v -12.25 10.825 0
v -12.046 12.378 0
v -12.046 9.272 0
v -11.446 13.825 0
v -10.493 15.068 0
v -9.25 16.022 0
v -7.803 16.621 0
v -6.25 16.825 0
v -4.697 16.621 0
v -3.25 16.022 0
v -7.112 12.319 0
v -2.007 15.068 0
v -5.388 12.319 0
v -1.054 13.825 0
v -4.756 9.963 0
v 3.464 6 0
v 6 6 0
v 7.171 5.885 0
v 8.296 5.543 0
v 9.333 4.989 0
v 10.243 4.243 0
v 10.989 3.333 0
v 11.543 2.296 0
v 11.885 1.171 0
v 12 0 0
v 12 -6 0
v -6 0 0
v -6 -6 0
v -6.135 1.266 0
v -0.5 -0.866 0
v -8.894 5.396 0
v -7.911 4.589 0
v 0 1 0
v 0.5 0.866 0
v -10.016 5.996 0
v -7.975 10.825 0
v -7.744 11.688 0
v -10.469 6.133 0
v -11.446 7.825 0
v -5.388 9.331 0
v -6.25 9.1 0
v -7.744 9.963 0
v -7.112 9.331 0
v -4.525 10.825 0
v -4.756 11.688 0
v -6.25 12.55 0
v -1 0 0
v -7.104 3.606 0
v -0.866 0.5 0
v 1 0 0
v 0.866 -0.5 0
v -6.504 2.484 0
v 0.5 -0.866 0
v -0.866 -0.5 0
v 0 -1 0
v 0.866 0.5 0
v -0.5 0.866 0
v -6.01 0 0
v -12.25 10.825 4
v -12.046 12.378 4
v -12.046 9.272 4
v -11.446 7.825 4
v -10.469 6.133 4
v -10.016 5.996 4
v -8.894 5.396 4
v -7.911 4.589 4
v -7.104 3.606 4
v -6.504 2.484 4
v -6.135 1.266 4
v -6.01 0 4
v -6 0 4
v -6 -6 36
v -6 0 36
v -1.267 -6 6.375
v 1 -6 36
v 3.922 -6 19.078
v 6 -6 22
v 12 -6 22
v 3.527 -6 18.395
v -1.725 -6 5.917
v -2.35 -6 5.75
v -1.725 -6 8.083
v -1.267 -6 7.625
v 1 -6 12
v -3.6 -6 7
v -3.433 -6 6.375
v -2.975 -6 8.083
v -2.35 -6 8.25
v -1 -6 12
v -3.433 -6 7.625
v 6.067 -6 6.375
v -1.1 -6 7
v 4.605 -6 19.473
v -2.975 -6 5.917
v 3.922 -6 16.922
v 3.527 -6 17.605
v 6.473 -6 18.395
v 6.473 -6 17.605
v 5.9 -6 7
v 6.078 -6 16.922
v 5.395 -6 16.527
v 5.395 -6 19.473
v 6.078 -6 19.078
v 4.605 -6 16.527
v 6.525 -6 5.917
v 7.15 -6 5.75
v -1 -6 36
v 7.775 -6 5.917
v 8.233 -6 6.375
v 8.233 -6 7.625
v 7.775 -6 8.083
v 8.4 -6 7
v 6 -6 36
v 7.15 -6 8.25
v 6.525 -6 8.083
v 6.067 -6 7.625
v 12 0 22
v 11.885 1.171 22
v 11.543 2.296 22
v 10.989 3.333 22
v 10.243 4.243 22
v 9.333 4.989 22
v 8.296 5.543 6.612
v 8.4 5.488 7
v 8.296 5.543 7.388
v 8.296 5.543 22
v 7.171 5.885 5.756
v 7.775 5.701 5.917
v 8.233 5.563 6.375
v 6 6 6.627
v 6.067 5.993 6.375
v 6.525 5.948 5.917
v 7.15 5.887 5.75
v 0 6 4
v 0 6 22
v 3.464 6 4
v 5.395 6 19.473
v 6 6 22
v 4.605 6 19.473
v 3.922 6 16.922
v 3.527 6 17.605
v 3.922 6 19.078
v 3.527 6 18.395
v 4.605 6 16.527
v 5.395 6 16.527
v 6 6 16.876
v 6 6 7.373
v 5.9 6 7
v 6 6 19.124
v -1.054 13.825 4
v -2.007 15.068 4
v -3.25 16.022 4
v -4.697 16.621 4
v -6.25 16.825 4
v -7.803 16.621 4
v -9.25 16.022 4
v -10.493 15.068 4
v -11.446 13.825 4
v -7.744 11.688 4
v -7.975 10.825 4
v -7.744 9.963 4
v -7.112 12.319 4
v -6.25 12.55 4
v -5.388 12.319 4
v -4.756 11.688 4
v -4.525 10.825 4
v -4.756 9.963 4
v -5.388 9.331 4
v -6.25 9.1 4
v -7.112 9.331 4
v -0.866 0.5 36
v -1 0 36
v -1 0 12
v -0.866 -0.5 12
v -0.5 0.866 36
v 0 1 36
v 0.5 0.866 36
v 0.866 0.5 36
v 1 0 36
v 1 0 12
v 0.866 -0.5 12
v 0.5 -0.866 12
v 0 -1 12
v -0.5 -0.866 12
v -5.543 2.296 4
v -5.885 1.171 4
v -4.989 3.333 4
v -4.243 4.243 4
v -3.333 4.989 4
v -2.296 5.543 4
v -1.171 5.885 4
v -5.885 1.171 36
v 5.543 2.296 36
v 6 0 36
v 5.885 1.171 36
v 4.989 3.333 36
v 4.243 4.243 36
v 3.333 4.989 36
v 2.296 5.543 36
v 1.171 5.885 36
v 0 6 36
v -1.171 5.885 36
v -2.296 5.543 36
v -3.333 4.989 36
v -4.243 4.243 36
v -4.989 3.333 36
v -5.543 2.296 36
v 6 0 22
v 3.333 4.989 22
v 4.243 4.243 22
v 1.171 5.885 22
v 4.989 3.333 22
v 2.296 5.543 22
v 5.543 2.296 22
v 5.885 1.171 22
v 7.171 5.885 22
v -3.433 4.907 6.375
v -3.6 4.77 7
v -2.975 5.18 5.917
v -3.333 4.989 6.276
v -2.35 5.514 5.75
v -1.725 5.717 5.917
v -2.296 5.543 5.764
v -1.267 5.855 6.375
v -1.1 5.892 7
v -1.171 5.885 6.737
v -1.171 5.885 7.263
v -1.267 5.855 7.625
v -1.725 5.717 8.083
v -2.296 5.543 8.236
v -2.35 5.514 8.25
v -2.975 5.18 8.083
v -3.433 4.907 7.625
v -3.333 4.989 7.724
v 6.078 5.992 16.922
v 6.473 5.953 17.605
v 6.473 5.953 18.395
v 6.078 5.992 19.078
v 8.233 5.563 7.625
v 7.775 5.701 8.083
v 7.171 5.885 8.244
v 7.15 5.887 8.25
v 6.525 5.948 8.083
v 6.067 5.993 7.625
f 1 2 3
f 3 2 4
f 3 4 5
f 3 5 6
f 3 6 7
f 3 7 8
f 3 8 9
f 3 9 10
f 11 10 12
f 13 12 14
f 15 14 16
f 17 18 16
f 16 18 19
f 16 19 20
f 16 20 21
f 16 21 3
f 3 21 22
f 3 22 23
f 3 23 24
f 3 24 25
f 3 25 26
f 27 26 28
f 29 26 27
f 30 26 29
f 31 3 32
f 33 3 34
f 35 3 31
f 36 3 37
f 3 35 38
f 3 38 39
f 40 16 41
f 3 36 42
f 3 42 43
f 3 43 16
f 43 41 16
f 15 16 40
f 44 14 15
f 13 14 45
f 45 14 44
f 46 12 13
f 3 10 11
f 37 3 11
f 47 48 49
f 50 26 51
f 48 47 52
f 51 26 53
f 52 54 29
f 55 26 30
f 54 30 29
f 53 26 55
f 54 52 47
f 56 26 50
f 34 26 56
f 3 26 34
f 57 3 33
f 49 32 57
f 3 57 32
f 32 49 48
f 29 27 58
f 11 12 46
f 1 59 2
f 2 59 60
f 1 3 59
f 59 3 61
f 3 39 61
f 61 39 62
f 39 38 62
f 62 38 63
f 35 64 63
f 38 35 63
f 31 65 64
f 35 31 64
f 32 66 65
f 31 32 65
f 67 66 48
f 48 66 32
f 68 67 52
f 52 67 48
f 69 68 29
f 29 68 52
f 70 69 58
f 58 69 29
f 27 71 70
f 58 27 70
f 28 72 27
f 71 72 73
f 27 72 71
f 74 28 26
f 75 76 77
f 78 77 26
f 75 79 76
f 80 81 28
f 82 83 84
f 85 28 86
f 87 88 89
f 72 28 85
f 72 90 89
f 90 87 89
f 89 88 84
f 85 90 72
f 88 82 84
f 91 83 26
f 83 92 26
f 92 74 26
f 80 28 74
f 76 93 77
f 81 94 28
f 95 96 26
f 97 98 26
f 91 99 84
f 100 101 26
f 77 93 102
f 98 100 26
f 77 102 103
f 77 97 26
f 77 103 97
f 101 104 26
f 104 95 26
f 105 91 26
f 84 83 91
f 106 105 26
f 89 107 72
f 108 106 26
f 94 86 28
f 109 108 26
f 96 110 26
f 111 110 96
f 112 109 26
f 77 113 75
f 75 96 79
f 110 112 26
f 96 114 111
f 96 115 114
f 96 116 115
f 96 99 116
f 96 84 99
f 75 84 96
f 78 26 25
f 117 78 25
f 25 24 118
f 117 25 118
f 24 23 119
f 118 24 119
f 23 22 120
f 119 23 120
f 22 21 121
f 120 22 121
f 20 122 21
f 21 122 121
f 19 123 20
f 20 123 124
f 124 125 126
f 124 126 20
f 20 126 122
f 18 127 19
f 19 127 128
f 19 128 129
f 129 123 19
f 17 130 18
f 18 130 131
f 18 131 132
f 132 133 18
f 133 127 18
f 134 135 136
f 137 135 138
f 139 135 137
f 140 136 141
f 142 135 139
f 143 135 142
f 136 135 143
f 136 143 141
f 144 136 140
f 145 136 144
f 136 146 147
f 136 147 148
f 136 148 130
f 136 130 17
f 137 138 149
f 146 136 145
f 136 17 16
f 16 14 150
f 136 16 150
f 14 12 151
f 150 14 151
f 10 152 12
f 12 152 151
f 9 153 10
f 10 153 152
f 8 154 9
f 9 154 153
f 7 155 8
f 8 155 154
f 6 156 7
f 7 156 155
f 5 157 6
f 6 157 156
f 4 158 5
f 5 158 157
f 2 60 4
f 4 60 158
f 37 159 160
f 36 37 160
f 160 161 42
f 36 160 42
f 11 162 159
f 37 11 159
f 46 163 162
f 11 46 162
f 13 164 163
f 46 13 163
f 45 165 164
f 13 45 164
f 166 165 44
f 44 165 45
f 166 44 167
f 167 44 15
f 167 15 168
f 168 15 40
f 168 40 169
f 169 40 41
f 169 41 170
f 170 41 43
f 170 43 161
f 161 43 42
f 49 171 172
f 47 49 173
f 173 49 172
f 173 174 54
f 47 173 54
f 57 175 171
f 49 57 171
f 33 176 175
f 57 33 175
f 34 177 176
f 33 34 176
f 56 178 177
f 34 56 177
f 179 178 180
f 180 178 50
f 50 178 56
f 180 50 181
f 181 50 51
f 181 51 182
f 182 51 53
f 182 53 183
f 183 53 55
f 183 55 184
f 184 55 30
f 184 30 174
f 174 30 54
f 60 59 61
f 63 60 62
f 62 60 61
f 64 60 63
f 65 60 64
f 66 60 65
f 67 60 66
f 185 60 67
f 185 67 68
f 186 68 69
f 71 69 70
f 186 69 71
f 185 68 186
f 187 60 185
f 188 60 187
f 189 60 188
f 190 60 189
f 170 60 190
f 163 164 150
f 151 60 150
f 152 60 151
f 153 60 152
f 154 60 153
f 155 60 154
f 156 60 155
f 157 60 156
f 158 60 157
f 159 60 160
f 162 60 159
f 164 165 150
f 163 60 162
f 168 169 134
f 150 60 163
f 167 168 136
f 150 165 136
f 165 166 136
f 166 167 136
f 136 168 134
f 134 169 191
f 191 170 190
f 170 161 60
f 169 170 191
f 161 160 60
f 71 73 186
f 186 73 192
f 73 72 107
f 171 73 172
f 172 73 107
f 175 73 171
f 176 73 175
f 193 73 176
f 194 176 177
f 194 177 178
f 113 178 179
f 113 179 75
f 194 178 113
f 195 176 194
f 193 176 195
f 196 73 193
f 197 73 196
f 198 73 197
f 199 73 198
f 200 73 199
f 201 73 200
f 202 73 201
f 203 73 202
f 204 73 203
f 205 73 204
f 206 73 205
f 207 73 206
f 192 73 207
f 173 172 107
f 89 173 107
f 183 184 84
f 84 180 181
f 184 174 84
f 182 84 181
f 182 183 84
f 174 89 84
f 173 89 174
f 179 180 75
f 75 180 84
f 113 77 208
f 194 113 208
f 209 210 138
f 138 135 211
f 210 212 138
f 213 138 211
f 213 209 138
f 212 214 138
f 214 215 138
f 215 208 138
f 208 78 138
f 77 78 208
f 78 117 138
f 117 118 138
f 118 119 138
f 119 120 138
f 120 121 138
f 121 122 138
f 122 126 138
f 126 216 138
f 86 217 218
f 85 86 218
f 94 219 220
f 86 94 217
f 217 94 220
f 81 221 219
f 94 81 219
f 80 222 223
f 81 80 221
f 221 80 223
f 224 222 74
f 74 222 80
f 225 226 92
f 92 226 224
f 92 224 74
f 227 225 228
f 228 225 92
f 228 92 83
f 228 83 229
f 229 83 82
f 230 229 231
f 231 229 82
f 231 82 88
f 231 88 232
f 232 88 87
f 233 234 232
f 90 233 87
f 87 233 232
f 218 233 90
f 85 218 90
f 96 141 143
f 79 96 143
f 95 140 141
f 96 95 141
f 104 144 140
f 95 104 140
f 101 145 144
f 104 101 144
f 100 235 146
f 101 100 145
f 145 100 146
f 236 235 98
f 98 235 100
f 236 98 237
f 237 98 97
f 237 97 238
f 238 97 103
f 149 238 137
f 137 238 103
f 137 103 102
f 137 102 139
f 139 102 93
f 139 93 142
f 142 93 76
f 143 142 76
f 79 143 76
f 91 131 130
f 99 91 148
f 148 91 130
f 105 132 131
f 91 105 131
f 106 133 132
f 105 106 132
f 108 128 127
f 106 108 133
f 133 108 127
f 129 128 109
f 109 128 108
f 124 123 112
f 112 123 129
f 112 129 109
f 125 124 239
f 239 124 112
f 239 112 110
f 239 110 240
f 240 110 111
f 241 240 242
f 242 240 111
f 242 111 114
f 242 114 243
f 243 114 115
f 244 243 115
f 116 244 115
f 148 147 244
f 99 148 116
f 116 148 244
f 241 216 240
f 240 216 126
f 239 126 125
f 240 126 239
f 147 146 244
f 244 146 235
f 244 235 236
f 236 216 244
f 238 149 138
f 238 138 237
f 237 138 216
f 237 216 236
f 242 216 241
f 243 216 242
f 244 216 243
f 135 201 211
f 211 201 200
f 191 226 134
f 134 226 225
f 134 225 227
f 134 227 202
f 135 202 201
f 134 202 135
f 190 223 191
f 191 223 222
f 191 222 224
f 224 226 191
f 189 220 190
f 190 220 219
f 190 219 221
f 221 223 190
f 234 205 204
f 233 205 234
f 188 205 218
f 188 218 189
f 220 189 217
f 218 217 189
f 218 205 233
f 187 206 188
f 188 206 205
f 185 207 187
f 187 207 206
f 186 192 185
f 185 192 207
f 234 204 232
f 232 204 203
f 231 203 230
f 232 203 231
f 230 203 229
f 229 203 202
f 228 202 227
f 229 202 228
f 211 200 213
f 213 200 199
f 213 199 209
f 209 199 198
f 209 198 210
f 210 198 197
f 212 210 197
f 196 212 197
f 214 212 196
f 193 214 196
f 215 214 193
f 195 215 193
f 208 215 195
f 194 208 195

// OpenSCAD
// file: configuration.scad
// Increase this if your slicer or printer make holes too tight.
extra_radius = 0.1;

// OD = outside diameter, corner to corner.
m3_nut_od = 6.1;
m3_nut_radius = m3_nut_od/2 + 0.2 + extra_radius;

// Major diameter of metric 3mm thread.
m3_major = 2.85;
m3_radius = m3_major/2 + extra_radius;
m3_wide_radius = m3_major/2 + extra_radius + 0.2;

// NEMA17 stepper motors.
motor_shaft_diameter = 5;
motor_shaft_radius = motor_shaft_diameter/2 + extra_radius;

// Frame brackets.
thickness = 3.6;
// main file
include <configuration.scad>;

height = 36;
height2 = 22;
tunnel = 2;

module microswitch() {
  difference() {
    union() {
      translate([0, 0, 2.5])
        cube([19.8, 6, 10], center=true);
      translate([-2.5, 0, 6])
        cube([2, 3.5, 5], center=true);
      for (x = [-8, 1, 8]) {
        translate([x, 0, 0])
          cube([0.6, 3.2, 13], center=true);
      }
    }
    for (x = [-9.5/2, 9.5/2]) {
      translate([x, 0, 0]) rotate([90, 0, 0])
        cylinder(r=2.5/2, h=20, center=true, $fn=12);
    }
  }
}

module trigger() {
  difference() {
    union() {
      cylinder(r=3, h=2, center=true, $fn=24);
      intersection() {
        cylinder(r=6, h=2, center=true, $fn=24);
        translate([5, 5, 0]) cube([10, 10, 10], center=true);
      }
      translate([-1, 6, 0])
        cube([4, 12, 2], center=true);
      rotate([0, 0, -90]) translate([1, 10, 0])
        cube([4, 20, 2], center=true);
    }
    cylinder(r=m3_wide_radius, h=16, center=true, $fn=12);
  }
}

module foot() {
  difference() {
    translate([-12.5, 0, 0]) rotate([0, 0, 60])
      translate([12.5, 0, 2]) rotate([0, 0, -120]) union() {
        cylinder(r=6, h=4, center=true, $fn=24);
        translate([10, 0, 0])
          cube([20, 12, 4], center=true);
    }
    translate([0, -10, 0])
      cube([40, 20, 20], center=true);
    translate([-12.5, 0, 0]) {
      // Space for bowden push fit connector.
      cylinder(r=6.49, h=3*height, center=true, $fn=32);
      for (a = [60:120:359]) {
	    rotate([0, 0, a]) translate([12.5, 0, 0])
          cylinder(r=m3_wide_radius, h=20, center=true, $fn=12);
      }
    }
  }
}

module retractable() {
  difference() {
    union() {
      translate([0, 0, height/2]) 
        cylinder(r=6, h=height, center=true, $fn=32);
      translate([0, -3, height/2])
        cube([12, 6, height], center=true);
      // Lower part on the right.
      translate([6, 0, height2/2])
        cylinder(r=6, h=height2, center=true, $fn=32);
      translate([3, 0, height2/2])
        cube([6, 12, height2], center=true);
      translate([3, -3, height2/2])
        cube([18, 6, height2], center=true);
      // Foot for vertical M3 screw attachment.
      foot();
    }
	cylinder(r=tunnel/2, h=3*height, center=true, $fn=12);
    translate([0, -6, height/2+12])
      cube([tunnel, 12, height], center=true);
    translate([5, -7.1, 18]) rotate([90, -15, 0]) {
      % trigger();
      cylinder(r=m3_radius, h=40, center=true, $fn=12);
    }
    translate([2.4, -9, 7]) {
      % microswitch();
      for (x = [-9.5/2, 9.5/2]) {
        translate([x, 0, 0]) rotate([90, 0, 0])
          cylinder(r=2.5/2, h=40, center=true, $fn=12);
      }
    }
  }
}

retractable();
